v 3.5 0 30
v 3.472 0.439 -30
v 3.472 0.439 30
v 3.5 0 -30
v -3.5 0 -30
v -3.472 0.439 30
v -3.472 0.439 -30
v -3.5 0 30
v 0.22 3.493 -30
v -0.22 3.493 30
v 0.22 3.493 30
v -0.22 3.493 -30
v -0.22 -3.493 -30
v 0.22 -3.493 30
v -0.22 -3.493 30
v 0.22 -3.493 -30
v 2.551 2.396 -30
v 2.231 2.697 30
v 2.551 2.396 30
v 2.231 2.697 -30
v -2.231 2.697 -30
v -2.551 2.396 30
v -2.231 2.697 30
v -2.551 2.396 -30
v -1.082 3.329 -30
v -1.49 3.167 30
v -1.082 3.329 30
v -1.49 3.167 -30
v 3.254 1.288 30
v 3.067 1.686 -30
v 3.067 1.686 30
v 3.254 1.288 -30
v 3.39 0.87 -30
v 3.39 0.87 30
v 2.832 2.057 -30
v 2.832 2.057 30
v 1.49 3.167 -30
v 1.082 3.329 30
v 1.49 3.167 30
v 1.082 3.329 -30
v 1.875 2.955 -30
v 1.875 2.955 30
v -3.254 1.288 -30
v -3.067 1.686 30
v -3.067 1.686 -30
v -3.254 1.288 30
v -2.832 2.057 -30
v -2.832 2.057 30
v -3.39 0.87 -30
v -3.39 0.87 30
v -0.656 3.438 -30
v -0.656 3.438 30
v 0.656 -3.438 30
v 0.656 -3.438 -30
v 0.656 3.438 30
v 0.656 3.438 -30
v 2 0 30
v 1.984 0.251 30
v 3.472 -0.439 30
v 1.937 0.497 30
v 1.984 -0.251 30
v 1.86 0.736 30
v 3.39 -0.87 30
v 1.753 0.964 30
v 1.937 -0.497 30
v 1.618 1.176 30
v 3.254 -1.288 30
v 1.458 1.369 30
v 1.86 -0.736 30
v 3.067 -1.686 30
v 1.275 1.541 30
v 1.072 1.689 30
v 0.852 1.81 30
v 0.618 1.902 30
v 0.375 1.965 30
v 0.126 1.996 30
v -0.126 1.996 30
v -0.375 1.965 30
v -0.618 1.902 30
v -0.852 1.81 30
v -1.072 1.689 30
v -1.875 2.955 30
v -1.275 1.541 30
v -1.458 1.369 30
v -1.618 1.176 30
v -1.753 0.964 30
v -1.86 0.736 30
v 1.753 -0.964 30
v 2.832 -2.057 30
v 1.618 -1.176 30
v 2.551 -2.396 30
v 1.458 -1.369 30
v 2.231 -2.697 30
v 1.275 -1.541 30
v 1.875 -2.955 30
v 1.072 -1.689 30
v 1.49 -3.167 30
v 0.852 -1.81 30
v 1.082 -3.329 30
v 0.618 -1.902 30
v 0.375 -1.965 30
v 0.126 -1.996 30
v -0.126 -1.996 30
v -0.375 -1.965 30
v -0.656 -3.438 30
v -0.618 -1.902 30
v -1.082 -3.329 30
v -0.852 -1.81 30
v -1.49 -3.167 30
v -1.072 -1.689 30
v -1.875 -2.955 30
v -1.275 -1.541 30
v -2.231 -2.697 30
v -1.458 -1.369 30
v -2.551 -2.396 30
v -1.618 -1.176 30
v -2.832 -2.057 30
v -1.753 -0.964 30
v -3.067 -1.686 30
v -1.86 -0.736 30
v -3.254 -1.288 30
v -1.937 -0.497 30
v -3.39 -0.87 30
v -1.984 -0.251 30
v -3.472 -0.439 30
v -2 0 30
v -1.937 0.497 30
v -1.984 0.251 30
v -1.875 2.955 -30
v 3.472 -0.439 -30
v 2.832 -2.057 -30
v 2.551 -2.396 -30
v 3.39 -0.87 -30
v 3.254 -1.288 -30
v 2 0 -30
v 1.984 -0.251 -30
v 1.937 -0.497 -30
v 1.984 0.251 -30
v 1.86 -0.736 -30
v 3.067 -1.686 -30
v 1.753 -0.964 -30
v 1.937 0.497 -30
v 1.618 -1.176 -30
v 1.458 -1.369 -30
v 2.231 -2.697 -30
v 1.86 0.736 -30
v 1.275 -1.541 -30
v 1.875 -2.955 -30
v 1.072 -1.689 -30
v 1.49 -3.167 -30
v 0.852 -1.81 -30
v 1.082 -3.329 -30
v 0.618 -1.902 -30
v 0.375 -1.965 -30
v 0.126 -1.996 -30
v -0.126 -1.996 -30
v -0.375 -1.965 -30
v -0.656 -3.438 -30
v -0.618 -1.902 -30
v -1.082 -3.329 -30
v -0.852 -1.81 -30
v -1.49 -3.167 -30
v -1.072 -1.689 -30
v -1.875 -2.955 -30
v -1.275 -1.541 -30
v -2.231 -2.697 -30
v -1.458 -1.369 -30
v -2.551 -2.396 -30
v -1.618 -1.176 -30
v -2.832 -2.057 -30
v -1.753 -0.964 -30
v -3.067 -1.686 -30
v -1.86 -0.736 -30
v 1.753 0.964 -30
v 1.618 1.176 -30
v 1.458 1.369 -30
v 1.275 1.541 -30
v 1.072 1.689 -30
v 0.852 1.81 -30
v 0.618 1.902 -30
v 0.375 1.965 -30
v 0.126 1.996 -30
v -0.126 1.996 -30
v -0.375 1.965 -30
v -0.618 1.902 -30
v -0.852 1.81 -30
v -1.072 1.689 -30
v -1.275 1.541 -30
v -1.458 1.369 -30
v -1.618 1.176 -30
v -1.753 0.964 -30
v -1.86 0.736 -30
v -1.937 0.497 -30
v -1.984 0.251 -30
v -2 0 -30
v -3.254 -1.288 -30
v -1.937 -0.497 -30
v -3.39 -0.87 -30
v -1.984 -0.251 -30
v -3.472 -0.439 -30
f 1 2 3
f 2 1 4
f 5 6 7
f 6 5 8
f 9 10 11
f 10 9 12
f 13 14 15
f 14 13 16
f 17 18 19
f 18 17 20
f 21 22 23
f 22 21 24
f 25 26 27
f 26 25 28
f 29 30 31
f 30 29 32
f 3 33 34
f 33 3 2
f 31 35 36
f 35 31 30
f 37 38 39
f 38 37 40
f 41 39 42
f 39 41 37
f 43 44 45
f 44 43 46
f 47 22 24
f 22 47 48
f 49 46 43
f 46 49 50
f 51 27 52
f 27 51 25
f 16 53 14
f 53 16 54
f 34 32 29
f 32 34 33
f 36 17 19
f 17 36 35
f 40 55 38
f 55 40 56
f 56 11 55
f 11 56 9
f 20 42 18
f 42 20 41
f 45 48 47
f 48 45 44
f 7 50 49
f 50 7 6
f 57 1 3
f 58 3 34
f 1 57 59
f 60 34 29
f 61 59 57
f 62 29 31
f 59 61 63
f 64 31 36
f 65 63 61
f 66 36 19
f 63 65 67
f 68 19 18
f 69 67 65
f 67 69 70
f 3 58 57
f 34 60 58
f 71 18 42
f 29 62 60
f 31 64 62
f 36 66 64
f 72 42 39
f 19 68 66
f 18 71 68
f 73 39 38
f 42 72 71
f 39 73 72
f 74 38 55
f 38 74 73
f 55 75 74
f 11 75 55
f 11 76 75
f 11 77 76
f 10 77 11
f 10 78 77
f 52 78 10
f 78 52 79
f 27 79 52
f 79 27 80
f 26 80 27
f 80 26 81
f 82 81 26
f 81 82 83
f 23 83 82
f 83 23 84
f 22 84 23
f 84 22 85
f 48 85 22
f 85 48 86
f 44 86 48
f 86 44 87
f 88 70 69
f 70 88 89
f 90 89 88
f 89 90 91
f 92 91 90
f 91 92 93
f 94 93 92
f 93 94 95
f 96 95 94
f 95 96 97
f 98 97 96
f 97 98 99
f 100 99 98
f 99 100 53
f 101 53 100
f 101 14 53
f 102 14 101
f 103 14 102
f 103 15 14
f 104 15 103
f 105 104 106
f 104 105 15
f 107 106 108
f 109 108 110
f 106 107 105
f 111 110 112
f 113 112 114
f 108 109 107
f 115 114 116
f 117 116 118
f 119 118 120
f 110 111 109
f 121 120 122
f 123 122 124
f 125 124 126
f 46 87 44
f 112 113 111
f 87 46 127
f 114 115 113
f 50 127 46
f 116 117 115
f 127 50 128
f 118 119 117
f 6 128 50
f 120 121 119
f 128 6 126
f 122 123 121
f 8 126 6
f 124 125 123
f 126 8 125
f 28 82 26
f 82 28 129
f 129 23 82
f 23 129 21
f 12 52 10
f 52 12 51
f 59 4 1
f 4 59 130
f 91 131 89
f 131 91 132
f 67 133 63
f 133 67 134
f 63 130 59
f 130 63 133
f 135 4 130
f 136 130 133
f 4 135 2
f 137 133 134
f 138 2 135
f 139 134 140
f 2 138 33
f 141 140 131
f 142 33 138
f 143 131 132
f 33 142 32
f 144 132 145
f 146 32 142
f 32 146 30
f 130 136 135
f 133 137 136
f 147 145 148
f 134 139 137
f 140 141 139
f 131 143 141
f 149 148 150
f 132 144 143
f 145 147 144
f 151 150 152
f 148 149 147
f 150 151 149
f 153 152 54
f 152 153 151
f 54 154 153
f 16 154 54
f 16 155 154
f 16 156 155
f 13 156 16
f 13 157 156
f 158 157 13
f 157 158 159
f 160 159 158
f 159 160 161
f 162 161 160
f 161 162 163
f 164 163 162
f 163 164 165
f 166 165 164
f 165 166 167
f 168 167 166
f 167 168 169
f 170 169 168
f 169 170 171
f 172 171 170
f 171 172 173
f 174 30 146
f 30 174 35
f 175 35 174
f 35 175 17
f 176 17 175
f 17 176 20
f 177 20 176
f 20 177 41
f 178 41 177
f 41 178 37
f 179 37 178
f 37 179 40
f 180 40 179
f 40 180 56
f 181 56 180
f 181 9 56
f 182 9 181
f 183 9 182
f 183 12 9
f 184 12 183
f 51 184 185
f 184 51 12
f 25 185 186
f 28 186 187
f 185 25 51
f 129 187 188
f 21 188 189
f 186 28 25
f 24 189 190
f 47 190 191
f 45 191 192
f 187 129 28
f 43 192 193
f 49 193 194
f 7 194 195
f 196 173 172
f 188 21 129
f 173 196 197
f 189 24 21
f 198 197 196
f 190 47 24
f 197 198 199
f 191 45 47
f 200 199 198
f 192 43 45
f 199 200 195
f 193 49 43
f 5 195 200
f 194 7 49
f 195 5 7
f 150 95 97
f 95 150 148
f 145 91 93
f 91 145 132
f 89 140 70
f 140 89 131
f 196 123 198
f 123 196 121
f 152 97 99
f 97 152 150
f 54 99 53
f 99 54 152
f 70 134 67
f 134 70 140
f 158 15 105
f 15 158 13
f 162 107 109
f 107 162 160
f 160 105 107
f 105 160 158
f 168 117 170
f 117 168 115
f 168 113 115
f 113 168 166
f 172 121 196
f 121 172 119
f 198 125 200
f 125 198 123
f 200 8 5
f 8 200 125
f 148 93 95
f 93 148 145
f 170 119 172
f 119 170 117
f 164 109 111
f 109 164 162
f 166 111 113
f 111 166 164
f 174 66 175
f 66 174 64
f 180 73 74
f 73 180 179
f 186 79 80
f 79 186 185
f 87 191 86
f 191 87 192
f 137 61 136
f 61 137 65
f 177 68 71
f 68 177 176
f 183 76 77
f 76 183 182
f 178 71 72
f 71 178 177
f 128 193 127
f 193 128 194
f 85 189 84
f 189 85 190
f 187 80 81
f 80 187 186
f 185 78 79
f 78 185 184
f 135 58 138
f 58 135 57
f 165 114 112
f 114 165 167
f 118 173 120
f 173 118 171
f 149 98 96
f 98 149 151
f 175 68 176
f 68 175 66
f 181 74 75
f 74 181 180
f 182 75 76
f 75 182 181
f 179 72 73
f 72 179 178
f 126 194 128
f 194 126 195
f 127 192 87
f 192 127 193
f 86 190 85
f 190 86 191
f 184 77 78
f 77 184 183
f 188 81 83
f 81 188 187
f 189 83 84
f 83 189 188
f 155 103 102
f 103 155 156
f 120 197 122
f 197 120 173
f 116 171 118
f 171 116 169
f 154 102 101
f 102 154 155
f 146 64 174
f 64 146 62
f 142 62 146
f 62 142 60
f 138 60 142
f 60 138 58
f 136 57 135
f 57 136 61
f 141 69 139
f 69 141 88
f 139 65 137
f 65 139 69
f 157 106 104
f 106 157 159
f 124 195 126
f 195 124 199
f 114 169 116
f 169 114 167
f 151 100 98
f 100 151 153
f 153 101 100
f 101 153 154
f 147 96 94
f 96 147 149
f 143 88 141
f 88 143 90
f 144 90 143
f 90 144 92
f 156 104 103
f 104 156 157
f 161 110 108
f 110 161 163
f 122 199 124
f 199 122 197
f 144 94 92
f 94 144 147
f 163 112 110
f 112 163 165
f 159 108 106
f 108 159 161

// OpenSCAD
$fn = 50;


difference() {
	union() {
		translate(v = [0, 0, -30.0000000000]) {
			cylinder(h = 60, r = 3.5000000000);
		}
	}
	union() {
		translate(v = [0, 0, -100.0000000000]) {
			cylinder(h = 200, r = 2);
		}
	}
}
